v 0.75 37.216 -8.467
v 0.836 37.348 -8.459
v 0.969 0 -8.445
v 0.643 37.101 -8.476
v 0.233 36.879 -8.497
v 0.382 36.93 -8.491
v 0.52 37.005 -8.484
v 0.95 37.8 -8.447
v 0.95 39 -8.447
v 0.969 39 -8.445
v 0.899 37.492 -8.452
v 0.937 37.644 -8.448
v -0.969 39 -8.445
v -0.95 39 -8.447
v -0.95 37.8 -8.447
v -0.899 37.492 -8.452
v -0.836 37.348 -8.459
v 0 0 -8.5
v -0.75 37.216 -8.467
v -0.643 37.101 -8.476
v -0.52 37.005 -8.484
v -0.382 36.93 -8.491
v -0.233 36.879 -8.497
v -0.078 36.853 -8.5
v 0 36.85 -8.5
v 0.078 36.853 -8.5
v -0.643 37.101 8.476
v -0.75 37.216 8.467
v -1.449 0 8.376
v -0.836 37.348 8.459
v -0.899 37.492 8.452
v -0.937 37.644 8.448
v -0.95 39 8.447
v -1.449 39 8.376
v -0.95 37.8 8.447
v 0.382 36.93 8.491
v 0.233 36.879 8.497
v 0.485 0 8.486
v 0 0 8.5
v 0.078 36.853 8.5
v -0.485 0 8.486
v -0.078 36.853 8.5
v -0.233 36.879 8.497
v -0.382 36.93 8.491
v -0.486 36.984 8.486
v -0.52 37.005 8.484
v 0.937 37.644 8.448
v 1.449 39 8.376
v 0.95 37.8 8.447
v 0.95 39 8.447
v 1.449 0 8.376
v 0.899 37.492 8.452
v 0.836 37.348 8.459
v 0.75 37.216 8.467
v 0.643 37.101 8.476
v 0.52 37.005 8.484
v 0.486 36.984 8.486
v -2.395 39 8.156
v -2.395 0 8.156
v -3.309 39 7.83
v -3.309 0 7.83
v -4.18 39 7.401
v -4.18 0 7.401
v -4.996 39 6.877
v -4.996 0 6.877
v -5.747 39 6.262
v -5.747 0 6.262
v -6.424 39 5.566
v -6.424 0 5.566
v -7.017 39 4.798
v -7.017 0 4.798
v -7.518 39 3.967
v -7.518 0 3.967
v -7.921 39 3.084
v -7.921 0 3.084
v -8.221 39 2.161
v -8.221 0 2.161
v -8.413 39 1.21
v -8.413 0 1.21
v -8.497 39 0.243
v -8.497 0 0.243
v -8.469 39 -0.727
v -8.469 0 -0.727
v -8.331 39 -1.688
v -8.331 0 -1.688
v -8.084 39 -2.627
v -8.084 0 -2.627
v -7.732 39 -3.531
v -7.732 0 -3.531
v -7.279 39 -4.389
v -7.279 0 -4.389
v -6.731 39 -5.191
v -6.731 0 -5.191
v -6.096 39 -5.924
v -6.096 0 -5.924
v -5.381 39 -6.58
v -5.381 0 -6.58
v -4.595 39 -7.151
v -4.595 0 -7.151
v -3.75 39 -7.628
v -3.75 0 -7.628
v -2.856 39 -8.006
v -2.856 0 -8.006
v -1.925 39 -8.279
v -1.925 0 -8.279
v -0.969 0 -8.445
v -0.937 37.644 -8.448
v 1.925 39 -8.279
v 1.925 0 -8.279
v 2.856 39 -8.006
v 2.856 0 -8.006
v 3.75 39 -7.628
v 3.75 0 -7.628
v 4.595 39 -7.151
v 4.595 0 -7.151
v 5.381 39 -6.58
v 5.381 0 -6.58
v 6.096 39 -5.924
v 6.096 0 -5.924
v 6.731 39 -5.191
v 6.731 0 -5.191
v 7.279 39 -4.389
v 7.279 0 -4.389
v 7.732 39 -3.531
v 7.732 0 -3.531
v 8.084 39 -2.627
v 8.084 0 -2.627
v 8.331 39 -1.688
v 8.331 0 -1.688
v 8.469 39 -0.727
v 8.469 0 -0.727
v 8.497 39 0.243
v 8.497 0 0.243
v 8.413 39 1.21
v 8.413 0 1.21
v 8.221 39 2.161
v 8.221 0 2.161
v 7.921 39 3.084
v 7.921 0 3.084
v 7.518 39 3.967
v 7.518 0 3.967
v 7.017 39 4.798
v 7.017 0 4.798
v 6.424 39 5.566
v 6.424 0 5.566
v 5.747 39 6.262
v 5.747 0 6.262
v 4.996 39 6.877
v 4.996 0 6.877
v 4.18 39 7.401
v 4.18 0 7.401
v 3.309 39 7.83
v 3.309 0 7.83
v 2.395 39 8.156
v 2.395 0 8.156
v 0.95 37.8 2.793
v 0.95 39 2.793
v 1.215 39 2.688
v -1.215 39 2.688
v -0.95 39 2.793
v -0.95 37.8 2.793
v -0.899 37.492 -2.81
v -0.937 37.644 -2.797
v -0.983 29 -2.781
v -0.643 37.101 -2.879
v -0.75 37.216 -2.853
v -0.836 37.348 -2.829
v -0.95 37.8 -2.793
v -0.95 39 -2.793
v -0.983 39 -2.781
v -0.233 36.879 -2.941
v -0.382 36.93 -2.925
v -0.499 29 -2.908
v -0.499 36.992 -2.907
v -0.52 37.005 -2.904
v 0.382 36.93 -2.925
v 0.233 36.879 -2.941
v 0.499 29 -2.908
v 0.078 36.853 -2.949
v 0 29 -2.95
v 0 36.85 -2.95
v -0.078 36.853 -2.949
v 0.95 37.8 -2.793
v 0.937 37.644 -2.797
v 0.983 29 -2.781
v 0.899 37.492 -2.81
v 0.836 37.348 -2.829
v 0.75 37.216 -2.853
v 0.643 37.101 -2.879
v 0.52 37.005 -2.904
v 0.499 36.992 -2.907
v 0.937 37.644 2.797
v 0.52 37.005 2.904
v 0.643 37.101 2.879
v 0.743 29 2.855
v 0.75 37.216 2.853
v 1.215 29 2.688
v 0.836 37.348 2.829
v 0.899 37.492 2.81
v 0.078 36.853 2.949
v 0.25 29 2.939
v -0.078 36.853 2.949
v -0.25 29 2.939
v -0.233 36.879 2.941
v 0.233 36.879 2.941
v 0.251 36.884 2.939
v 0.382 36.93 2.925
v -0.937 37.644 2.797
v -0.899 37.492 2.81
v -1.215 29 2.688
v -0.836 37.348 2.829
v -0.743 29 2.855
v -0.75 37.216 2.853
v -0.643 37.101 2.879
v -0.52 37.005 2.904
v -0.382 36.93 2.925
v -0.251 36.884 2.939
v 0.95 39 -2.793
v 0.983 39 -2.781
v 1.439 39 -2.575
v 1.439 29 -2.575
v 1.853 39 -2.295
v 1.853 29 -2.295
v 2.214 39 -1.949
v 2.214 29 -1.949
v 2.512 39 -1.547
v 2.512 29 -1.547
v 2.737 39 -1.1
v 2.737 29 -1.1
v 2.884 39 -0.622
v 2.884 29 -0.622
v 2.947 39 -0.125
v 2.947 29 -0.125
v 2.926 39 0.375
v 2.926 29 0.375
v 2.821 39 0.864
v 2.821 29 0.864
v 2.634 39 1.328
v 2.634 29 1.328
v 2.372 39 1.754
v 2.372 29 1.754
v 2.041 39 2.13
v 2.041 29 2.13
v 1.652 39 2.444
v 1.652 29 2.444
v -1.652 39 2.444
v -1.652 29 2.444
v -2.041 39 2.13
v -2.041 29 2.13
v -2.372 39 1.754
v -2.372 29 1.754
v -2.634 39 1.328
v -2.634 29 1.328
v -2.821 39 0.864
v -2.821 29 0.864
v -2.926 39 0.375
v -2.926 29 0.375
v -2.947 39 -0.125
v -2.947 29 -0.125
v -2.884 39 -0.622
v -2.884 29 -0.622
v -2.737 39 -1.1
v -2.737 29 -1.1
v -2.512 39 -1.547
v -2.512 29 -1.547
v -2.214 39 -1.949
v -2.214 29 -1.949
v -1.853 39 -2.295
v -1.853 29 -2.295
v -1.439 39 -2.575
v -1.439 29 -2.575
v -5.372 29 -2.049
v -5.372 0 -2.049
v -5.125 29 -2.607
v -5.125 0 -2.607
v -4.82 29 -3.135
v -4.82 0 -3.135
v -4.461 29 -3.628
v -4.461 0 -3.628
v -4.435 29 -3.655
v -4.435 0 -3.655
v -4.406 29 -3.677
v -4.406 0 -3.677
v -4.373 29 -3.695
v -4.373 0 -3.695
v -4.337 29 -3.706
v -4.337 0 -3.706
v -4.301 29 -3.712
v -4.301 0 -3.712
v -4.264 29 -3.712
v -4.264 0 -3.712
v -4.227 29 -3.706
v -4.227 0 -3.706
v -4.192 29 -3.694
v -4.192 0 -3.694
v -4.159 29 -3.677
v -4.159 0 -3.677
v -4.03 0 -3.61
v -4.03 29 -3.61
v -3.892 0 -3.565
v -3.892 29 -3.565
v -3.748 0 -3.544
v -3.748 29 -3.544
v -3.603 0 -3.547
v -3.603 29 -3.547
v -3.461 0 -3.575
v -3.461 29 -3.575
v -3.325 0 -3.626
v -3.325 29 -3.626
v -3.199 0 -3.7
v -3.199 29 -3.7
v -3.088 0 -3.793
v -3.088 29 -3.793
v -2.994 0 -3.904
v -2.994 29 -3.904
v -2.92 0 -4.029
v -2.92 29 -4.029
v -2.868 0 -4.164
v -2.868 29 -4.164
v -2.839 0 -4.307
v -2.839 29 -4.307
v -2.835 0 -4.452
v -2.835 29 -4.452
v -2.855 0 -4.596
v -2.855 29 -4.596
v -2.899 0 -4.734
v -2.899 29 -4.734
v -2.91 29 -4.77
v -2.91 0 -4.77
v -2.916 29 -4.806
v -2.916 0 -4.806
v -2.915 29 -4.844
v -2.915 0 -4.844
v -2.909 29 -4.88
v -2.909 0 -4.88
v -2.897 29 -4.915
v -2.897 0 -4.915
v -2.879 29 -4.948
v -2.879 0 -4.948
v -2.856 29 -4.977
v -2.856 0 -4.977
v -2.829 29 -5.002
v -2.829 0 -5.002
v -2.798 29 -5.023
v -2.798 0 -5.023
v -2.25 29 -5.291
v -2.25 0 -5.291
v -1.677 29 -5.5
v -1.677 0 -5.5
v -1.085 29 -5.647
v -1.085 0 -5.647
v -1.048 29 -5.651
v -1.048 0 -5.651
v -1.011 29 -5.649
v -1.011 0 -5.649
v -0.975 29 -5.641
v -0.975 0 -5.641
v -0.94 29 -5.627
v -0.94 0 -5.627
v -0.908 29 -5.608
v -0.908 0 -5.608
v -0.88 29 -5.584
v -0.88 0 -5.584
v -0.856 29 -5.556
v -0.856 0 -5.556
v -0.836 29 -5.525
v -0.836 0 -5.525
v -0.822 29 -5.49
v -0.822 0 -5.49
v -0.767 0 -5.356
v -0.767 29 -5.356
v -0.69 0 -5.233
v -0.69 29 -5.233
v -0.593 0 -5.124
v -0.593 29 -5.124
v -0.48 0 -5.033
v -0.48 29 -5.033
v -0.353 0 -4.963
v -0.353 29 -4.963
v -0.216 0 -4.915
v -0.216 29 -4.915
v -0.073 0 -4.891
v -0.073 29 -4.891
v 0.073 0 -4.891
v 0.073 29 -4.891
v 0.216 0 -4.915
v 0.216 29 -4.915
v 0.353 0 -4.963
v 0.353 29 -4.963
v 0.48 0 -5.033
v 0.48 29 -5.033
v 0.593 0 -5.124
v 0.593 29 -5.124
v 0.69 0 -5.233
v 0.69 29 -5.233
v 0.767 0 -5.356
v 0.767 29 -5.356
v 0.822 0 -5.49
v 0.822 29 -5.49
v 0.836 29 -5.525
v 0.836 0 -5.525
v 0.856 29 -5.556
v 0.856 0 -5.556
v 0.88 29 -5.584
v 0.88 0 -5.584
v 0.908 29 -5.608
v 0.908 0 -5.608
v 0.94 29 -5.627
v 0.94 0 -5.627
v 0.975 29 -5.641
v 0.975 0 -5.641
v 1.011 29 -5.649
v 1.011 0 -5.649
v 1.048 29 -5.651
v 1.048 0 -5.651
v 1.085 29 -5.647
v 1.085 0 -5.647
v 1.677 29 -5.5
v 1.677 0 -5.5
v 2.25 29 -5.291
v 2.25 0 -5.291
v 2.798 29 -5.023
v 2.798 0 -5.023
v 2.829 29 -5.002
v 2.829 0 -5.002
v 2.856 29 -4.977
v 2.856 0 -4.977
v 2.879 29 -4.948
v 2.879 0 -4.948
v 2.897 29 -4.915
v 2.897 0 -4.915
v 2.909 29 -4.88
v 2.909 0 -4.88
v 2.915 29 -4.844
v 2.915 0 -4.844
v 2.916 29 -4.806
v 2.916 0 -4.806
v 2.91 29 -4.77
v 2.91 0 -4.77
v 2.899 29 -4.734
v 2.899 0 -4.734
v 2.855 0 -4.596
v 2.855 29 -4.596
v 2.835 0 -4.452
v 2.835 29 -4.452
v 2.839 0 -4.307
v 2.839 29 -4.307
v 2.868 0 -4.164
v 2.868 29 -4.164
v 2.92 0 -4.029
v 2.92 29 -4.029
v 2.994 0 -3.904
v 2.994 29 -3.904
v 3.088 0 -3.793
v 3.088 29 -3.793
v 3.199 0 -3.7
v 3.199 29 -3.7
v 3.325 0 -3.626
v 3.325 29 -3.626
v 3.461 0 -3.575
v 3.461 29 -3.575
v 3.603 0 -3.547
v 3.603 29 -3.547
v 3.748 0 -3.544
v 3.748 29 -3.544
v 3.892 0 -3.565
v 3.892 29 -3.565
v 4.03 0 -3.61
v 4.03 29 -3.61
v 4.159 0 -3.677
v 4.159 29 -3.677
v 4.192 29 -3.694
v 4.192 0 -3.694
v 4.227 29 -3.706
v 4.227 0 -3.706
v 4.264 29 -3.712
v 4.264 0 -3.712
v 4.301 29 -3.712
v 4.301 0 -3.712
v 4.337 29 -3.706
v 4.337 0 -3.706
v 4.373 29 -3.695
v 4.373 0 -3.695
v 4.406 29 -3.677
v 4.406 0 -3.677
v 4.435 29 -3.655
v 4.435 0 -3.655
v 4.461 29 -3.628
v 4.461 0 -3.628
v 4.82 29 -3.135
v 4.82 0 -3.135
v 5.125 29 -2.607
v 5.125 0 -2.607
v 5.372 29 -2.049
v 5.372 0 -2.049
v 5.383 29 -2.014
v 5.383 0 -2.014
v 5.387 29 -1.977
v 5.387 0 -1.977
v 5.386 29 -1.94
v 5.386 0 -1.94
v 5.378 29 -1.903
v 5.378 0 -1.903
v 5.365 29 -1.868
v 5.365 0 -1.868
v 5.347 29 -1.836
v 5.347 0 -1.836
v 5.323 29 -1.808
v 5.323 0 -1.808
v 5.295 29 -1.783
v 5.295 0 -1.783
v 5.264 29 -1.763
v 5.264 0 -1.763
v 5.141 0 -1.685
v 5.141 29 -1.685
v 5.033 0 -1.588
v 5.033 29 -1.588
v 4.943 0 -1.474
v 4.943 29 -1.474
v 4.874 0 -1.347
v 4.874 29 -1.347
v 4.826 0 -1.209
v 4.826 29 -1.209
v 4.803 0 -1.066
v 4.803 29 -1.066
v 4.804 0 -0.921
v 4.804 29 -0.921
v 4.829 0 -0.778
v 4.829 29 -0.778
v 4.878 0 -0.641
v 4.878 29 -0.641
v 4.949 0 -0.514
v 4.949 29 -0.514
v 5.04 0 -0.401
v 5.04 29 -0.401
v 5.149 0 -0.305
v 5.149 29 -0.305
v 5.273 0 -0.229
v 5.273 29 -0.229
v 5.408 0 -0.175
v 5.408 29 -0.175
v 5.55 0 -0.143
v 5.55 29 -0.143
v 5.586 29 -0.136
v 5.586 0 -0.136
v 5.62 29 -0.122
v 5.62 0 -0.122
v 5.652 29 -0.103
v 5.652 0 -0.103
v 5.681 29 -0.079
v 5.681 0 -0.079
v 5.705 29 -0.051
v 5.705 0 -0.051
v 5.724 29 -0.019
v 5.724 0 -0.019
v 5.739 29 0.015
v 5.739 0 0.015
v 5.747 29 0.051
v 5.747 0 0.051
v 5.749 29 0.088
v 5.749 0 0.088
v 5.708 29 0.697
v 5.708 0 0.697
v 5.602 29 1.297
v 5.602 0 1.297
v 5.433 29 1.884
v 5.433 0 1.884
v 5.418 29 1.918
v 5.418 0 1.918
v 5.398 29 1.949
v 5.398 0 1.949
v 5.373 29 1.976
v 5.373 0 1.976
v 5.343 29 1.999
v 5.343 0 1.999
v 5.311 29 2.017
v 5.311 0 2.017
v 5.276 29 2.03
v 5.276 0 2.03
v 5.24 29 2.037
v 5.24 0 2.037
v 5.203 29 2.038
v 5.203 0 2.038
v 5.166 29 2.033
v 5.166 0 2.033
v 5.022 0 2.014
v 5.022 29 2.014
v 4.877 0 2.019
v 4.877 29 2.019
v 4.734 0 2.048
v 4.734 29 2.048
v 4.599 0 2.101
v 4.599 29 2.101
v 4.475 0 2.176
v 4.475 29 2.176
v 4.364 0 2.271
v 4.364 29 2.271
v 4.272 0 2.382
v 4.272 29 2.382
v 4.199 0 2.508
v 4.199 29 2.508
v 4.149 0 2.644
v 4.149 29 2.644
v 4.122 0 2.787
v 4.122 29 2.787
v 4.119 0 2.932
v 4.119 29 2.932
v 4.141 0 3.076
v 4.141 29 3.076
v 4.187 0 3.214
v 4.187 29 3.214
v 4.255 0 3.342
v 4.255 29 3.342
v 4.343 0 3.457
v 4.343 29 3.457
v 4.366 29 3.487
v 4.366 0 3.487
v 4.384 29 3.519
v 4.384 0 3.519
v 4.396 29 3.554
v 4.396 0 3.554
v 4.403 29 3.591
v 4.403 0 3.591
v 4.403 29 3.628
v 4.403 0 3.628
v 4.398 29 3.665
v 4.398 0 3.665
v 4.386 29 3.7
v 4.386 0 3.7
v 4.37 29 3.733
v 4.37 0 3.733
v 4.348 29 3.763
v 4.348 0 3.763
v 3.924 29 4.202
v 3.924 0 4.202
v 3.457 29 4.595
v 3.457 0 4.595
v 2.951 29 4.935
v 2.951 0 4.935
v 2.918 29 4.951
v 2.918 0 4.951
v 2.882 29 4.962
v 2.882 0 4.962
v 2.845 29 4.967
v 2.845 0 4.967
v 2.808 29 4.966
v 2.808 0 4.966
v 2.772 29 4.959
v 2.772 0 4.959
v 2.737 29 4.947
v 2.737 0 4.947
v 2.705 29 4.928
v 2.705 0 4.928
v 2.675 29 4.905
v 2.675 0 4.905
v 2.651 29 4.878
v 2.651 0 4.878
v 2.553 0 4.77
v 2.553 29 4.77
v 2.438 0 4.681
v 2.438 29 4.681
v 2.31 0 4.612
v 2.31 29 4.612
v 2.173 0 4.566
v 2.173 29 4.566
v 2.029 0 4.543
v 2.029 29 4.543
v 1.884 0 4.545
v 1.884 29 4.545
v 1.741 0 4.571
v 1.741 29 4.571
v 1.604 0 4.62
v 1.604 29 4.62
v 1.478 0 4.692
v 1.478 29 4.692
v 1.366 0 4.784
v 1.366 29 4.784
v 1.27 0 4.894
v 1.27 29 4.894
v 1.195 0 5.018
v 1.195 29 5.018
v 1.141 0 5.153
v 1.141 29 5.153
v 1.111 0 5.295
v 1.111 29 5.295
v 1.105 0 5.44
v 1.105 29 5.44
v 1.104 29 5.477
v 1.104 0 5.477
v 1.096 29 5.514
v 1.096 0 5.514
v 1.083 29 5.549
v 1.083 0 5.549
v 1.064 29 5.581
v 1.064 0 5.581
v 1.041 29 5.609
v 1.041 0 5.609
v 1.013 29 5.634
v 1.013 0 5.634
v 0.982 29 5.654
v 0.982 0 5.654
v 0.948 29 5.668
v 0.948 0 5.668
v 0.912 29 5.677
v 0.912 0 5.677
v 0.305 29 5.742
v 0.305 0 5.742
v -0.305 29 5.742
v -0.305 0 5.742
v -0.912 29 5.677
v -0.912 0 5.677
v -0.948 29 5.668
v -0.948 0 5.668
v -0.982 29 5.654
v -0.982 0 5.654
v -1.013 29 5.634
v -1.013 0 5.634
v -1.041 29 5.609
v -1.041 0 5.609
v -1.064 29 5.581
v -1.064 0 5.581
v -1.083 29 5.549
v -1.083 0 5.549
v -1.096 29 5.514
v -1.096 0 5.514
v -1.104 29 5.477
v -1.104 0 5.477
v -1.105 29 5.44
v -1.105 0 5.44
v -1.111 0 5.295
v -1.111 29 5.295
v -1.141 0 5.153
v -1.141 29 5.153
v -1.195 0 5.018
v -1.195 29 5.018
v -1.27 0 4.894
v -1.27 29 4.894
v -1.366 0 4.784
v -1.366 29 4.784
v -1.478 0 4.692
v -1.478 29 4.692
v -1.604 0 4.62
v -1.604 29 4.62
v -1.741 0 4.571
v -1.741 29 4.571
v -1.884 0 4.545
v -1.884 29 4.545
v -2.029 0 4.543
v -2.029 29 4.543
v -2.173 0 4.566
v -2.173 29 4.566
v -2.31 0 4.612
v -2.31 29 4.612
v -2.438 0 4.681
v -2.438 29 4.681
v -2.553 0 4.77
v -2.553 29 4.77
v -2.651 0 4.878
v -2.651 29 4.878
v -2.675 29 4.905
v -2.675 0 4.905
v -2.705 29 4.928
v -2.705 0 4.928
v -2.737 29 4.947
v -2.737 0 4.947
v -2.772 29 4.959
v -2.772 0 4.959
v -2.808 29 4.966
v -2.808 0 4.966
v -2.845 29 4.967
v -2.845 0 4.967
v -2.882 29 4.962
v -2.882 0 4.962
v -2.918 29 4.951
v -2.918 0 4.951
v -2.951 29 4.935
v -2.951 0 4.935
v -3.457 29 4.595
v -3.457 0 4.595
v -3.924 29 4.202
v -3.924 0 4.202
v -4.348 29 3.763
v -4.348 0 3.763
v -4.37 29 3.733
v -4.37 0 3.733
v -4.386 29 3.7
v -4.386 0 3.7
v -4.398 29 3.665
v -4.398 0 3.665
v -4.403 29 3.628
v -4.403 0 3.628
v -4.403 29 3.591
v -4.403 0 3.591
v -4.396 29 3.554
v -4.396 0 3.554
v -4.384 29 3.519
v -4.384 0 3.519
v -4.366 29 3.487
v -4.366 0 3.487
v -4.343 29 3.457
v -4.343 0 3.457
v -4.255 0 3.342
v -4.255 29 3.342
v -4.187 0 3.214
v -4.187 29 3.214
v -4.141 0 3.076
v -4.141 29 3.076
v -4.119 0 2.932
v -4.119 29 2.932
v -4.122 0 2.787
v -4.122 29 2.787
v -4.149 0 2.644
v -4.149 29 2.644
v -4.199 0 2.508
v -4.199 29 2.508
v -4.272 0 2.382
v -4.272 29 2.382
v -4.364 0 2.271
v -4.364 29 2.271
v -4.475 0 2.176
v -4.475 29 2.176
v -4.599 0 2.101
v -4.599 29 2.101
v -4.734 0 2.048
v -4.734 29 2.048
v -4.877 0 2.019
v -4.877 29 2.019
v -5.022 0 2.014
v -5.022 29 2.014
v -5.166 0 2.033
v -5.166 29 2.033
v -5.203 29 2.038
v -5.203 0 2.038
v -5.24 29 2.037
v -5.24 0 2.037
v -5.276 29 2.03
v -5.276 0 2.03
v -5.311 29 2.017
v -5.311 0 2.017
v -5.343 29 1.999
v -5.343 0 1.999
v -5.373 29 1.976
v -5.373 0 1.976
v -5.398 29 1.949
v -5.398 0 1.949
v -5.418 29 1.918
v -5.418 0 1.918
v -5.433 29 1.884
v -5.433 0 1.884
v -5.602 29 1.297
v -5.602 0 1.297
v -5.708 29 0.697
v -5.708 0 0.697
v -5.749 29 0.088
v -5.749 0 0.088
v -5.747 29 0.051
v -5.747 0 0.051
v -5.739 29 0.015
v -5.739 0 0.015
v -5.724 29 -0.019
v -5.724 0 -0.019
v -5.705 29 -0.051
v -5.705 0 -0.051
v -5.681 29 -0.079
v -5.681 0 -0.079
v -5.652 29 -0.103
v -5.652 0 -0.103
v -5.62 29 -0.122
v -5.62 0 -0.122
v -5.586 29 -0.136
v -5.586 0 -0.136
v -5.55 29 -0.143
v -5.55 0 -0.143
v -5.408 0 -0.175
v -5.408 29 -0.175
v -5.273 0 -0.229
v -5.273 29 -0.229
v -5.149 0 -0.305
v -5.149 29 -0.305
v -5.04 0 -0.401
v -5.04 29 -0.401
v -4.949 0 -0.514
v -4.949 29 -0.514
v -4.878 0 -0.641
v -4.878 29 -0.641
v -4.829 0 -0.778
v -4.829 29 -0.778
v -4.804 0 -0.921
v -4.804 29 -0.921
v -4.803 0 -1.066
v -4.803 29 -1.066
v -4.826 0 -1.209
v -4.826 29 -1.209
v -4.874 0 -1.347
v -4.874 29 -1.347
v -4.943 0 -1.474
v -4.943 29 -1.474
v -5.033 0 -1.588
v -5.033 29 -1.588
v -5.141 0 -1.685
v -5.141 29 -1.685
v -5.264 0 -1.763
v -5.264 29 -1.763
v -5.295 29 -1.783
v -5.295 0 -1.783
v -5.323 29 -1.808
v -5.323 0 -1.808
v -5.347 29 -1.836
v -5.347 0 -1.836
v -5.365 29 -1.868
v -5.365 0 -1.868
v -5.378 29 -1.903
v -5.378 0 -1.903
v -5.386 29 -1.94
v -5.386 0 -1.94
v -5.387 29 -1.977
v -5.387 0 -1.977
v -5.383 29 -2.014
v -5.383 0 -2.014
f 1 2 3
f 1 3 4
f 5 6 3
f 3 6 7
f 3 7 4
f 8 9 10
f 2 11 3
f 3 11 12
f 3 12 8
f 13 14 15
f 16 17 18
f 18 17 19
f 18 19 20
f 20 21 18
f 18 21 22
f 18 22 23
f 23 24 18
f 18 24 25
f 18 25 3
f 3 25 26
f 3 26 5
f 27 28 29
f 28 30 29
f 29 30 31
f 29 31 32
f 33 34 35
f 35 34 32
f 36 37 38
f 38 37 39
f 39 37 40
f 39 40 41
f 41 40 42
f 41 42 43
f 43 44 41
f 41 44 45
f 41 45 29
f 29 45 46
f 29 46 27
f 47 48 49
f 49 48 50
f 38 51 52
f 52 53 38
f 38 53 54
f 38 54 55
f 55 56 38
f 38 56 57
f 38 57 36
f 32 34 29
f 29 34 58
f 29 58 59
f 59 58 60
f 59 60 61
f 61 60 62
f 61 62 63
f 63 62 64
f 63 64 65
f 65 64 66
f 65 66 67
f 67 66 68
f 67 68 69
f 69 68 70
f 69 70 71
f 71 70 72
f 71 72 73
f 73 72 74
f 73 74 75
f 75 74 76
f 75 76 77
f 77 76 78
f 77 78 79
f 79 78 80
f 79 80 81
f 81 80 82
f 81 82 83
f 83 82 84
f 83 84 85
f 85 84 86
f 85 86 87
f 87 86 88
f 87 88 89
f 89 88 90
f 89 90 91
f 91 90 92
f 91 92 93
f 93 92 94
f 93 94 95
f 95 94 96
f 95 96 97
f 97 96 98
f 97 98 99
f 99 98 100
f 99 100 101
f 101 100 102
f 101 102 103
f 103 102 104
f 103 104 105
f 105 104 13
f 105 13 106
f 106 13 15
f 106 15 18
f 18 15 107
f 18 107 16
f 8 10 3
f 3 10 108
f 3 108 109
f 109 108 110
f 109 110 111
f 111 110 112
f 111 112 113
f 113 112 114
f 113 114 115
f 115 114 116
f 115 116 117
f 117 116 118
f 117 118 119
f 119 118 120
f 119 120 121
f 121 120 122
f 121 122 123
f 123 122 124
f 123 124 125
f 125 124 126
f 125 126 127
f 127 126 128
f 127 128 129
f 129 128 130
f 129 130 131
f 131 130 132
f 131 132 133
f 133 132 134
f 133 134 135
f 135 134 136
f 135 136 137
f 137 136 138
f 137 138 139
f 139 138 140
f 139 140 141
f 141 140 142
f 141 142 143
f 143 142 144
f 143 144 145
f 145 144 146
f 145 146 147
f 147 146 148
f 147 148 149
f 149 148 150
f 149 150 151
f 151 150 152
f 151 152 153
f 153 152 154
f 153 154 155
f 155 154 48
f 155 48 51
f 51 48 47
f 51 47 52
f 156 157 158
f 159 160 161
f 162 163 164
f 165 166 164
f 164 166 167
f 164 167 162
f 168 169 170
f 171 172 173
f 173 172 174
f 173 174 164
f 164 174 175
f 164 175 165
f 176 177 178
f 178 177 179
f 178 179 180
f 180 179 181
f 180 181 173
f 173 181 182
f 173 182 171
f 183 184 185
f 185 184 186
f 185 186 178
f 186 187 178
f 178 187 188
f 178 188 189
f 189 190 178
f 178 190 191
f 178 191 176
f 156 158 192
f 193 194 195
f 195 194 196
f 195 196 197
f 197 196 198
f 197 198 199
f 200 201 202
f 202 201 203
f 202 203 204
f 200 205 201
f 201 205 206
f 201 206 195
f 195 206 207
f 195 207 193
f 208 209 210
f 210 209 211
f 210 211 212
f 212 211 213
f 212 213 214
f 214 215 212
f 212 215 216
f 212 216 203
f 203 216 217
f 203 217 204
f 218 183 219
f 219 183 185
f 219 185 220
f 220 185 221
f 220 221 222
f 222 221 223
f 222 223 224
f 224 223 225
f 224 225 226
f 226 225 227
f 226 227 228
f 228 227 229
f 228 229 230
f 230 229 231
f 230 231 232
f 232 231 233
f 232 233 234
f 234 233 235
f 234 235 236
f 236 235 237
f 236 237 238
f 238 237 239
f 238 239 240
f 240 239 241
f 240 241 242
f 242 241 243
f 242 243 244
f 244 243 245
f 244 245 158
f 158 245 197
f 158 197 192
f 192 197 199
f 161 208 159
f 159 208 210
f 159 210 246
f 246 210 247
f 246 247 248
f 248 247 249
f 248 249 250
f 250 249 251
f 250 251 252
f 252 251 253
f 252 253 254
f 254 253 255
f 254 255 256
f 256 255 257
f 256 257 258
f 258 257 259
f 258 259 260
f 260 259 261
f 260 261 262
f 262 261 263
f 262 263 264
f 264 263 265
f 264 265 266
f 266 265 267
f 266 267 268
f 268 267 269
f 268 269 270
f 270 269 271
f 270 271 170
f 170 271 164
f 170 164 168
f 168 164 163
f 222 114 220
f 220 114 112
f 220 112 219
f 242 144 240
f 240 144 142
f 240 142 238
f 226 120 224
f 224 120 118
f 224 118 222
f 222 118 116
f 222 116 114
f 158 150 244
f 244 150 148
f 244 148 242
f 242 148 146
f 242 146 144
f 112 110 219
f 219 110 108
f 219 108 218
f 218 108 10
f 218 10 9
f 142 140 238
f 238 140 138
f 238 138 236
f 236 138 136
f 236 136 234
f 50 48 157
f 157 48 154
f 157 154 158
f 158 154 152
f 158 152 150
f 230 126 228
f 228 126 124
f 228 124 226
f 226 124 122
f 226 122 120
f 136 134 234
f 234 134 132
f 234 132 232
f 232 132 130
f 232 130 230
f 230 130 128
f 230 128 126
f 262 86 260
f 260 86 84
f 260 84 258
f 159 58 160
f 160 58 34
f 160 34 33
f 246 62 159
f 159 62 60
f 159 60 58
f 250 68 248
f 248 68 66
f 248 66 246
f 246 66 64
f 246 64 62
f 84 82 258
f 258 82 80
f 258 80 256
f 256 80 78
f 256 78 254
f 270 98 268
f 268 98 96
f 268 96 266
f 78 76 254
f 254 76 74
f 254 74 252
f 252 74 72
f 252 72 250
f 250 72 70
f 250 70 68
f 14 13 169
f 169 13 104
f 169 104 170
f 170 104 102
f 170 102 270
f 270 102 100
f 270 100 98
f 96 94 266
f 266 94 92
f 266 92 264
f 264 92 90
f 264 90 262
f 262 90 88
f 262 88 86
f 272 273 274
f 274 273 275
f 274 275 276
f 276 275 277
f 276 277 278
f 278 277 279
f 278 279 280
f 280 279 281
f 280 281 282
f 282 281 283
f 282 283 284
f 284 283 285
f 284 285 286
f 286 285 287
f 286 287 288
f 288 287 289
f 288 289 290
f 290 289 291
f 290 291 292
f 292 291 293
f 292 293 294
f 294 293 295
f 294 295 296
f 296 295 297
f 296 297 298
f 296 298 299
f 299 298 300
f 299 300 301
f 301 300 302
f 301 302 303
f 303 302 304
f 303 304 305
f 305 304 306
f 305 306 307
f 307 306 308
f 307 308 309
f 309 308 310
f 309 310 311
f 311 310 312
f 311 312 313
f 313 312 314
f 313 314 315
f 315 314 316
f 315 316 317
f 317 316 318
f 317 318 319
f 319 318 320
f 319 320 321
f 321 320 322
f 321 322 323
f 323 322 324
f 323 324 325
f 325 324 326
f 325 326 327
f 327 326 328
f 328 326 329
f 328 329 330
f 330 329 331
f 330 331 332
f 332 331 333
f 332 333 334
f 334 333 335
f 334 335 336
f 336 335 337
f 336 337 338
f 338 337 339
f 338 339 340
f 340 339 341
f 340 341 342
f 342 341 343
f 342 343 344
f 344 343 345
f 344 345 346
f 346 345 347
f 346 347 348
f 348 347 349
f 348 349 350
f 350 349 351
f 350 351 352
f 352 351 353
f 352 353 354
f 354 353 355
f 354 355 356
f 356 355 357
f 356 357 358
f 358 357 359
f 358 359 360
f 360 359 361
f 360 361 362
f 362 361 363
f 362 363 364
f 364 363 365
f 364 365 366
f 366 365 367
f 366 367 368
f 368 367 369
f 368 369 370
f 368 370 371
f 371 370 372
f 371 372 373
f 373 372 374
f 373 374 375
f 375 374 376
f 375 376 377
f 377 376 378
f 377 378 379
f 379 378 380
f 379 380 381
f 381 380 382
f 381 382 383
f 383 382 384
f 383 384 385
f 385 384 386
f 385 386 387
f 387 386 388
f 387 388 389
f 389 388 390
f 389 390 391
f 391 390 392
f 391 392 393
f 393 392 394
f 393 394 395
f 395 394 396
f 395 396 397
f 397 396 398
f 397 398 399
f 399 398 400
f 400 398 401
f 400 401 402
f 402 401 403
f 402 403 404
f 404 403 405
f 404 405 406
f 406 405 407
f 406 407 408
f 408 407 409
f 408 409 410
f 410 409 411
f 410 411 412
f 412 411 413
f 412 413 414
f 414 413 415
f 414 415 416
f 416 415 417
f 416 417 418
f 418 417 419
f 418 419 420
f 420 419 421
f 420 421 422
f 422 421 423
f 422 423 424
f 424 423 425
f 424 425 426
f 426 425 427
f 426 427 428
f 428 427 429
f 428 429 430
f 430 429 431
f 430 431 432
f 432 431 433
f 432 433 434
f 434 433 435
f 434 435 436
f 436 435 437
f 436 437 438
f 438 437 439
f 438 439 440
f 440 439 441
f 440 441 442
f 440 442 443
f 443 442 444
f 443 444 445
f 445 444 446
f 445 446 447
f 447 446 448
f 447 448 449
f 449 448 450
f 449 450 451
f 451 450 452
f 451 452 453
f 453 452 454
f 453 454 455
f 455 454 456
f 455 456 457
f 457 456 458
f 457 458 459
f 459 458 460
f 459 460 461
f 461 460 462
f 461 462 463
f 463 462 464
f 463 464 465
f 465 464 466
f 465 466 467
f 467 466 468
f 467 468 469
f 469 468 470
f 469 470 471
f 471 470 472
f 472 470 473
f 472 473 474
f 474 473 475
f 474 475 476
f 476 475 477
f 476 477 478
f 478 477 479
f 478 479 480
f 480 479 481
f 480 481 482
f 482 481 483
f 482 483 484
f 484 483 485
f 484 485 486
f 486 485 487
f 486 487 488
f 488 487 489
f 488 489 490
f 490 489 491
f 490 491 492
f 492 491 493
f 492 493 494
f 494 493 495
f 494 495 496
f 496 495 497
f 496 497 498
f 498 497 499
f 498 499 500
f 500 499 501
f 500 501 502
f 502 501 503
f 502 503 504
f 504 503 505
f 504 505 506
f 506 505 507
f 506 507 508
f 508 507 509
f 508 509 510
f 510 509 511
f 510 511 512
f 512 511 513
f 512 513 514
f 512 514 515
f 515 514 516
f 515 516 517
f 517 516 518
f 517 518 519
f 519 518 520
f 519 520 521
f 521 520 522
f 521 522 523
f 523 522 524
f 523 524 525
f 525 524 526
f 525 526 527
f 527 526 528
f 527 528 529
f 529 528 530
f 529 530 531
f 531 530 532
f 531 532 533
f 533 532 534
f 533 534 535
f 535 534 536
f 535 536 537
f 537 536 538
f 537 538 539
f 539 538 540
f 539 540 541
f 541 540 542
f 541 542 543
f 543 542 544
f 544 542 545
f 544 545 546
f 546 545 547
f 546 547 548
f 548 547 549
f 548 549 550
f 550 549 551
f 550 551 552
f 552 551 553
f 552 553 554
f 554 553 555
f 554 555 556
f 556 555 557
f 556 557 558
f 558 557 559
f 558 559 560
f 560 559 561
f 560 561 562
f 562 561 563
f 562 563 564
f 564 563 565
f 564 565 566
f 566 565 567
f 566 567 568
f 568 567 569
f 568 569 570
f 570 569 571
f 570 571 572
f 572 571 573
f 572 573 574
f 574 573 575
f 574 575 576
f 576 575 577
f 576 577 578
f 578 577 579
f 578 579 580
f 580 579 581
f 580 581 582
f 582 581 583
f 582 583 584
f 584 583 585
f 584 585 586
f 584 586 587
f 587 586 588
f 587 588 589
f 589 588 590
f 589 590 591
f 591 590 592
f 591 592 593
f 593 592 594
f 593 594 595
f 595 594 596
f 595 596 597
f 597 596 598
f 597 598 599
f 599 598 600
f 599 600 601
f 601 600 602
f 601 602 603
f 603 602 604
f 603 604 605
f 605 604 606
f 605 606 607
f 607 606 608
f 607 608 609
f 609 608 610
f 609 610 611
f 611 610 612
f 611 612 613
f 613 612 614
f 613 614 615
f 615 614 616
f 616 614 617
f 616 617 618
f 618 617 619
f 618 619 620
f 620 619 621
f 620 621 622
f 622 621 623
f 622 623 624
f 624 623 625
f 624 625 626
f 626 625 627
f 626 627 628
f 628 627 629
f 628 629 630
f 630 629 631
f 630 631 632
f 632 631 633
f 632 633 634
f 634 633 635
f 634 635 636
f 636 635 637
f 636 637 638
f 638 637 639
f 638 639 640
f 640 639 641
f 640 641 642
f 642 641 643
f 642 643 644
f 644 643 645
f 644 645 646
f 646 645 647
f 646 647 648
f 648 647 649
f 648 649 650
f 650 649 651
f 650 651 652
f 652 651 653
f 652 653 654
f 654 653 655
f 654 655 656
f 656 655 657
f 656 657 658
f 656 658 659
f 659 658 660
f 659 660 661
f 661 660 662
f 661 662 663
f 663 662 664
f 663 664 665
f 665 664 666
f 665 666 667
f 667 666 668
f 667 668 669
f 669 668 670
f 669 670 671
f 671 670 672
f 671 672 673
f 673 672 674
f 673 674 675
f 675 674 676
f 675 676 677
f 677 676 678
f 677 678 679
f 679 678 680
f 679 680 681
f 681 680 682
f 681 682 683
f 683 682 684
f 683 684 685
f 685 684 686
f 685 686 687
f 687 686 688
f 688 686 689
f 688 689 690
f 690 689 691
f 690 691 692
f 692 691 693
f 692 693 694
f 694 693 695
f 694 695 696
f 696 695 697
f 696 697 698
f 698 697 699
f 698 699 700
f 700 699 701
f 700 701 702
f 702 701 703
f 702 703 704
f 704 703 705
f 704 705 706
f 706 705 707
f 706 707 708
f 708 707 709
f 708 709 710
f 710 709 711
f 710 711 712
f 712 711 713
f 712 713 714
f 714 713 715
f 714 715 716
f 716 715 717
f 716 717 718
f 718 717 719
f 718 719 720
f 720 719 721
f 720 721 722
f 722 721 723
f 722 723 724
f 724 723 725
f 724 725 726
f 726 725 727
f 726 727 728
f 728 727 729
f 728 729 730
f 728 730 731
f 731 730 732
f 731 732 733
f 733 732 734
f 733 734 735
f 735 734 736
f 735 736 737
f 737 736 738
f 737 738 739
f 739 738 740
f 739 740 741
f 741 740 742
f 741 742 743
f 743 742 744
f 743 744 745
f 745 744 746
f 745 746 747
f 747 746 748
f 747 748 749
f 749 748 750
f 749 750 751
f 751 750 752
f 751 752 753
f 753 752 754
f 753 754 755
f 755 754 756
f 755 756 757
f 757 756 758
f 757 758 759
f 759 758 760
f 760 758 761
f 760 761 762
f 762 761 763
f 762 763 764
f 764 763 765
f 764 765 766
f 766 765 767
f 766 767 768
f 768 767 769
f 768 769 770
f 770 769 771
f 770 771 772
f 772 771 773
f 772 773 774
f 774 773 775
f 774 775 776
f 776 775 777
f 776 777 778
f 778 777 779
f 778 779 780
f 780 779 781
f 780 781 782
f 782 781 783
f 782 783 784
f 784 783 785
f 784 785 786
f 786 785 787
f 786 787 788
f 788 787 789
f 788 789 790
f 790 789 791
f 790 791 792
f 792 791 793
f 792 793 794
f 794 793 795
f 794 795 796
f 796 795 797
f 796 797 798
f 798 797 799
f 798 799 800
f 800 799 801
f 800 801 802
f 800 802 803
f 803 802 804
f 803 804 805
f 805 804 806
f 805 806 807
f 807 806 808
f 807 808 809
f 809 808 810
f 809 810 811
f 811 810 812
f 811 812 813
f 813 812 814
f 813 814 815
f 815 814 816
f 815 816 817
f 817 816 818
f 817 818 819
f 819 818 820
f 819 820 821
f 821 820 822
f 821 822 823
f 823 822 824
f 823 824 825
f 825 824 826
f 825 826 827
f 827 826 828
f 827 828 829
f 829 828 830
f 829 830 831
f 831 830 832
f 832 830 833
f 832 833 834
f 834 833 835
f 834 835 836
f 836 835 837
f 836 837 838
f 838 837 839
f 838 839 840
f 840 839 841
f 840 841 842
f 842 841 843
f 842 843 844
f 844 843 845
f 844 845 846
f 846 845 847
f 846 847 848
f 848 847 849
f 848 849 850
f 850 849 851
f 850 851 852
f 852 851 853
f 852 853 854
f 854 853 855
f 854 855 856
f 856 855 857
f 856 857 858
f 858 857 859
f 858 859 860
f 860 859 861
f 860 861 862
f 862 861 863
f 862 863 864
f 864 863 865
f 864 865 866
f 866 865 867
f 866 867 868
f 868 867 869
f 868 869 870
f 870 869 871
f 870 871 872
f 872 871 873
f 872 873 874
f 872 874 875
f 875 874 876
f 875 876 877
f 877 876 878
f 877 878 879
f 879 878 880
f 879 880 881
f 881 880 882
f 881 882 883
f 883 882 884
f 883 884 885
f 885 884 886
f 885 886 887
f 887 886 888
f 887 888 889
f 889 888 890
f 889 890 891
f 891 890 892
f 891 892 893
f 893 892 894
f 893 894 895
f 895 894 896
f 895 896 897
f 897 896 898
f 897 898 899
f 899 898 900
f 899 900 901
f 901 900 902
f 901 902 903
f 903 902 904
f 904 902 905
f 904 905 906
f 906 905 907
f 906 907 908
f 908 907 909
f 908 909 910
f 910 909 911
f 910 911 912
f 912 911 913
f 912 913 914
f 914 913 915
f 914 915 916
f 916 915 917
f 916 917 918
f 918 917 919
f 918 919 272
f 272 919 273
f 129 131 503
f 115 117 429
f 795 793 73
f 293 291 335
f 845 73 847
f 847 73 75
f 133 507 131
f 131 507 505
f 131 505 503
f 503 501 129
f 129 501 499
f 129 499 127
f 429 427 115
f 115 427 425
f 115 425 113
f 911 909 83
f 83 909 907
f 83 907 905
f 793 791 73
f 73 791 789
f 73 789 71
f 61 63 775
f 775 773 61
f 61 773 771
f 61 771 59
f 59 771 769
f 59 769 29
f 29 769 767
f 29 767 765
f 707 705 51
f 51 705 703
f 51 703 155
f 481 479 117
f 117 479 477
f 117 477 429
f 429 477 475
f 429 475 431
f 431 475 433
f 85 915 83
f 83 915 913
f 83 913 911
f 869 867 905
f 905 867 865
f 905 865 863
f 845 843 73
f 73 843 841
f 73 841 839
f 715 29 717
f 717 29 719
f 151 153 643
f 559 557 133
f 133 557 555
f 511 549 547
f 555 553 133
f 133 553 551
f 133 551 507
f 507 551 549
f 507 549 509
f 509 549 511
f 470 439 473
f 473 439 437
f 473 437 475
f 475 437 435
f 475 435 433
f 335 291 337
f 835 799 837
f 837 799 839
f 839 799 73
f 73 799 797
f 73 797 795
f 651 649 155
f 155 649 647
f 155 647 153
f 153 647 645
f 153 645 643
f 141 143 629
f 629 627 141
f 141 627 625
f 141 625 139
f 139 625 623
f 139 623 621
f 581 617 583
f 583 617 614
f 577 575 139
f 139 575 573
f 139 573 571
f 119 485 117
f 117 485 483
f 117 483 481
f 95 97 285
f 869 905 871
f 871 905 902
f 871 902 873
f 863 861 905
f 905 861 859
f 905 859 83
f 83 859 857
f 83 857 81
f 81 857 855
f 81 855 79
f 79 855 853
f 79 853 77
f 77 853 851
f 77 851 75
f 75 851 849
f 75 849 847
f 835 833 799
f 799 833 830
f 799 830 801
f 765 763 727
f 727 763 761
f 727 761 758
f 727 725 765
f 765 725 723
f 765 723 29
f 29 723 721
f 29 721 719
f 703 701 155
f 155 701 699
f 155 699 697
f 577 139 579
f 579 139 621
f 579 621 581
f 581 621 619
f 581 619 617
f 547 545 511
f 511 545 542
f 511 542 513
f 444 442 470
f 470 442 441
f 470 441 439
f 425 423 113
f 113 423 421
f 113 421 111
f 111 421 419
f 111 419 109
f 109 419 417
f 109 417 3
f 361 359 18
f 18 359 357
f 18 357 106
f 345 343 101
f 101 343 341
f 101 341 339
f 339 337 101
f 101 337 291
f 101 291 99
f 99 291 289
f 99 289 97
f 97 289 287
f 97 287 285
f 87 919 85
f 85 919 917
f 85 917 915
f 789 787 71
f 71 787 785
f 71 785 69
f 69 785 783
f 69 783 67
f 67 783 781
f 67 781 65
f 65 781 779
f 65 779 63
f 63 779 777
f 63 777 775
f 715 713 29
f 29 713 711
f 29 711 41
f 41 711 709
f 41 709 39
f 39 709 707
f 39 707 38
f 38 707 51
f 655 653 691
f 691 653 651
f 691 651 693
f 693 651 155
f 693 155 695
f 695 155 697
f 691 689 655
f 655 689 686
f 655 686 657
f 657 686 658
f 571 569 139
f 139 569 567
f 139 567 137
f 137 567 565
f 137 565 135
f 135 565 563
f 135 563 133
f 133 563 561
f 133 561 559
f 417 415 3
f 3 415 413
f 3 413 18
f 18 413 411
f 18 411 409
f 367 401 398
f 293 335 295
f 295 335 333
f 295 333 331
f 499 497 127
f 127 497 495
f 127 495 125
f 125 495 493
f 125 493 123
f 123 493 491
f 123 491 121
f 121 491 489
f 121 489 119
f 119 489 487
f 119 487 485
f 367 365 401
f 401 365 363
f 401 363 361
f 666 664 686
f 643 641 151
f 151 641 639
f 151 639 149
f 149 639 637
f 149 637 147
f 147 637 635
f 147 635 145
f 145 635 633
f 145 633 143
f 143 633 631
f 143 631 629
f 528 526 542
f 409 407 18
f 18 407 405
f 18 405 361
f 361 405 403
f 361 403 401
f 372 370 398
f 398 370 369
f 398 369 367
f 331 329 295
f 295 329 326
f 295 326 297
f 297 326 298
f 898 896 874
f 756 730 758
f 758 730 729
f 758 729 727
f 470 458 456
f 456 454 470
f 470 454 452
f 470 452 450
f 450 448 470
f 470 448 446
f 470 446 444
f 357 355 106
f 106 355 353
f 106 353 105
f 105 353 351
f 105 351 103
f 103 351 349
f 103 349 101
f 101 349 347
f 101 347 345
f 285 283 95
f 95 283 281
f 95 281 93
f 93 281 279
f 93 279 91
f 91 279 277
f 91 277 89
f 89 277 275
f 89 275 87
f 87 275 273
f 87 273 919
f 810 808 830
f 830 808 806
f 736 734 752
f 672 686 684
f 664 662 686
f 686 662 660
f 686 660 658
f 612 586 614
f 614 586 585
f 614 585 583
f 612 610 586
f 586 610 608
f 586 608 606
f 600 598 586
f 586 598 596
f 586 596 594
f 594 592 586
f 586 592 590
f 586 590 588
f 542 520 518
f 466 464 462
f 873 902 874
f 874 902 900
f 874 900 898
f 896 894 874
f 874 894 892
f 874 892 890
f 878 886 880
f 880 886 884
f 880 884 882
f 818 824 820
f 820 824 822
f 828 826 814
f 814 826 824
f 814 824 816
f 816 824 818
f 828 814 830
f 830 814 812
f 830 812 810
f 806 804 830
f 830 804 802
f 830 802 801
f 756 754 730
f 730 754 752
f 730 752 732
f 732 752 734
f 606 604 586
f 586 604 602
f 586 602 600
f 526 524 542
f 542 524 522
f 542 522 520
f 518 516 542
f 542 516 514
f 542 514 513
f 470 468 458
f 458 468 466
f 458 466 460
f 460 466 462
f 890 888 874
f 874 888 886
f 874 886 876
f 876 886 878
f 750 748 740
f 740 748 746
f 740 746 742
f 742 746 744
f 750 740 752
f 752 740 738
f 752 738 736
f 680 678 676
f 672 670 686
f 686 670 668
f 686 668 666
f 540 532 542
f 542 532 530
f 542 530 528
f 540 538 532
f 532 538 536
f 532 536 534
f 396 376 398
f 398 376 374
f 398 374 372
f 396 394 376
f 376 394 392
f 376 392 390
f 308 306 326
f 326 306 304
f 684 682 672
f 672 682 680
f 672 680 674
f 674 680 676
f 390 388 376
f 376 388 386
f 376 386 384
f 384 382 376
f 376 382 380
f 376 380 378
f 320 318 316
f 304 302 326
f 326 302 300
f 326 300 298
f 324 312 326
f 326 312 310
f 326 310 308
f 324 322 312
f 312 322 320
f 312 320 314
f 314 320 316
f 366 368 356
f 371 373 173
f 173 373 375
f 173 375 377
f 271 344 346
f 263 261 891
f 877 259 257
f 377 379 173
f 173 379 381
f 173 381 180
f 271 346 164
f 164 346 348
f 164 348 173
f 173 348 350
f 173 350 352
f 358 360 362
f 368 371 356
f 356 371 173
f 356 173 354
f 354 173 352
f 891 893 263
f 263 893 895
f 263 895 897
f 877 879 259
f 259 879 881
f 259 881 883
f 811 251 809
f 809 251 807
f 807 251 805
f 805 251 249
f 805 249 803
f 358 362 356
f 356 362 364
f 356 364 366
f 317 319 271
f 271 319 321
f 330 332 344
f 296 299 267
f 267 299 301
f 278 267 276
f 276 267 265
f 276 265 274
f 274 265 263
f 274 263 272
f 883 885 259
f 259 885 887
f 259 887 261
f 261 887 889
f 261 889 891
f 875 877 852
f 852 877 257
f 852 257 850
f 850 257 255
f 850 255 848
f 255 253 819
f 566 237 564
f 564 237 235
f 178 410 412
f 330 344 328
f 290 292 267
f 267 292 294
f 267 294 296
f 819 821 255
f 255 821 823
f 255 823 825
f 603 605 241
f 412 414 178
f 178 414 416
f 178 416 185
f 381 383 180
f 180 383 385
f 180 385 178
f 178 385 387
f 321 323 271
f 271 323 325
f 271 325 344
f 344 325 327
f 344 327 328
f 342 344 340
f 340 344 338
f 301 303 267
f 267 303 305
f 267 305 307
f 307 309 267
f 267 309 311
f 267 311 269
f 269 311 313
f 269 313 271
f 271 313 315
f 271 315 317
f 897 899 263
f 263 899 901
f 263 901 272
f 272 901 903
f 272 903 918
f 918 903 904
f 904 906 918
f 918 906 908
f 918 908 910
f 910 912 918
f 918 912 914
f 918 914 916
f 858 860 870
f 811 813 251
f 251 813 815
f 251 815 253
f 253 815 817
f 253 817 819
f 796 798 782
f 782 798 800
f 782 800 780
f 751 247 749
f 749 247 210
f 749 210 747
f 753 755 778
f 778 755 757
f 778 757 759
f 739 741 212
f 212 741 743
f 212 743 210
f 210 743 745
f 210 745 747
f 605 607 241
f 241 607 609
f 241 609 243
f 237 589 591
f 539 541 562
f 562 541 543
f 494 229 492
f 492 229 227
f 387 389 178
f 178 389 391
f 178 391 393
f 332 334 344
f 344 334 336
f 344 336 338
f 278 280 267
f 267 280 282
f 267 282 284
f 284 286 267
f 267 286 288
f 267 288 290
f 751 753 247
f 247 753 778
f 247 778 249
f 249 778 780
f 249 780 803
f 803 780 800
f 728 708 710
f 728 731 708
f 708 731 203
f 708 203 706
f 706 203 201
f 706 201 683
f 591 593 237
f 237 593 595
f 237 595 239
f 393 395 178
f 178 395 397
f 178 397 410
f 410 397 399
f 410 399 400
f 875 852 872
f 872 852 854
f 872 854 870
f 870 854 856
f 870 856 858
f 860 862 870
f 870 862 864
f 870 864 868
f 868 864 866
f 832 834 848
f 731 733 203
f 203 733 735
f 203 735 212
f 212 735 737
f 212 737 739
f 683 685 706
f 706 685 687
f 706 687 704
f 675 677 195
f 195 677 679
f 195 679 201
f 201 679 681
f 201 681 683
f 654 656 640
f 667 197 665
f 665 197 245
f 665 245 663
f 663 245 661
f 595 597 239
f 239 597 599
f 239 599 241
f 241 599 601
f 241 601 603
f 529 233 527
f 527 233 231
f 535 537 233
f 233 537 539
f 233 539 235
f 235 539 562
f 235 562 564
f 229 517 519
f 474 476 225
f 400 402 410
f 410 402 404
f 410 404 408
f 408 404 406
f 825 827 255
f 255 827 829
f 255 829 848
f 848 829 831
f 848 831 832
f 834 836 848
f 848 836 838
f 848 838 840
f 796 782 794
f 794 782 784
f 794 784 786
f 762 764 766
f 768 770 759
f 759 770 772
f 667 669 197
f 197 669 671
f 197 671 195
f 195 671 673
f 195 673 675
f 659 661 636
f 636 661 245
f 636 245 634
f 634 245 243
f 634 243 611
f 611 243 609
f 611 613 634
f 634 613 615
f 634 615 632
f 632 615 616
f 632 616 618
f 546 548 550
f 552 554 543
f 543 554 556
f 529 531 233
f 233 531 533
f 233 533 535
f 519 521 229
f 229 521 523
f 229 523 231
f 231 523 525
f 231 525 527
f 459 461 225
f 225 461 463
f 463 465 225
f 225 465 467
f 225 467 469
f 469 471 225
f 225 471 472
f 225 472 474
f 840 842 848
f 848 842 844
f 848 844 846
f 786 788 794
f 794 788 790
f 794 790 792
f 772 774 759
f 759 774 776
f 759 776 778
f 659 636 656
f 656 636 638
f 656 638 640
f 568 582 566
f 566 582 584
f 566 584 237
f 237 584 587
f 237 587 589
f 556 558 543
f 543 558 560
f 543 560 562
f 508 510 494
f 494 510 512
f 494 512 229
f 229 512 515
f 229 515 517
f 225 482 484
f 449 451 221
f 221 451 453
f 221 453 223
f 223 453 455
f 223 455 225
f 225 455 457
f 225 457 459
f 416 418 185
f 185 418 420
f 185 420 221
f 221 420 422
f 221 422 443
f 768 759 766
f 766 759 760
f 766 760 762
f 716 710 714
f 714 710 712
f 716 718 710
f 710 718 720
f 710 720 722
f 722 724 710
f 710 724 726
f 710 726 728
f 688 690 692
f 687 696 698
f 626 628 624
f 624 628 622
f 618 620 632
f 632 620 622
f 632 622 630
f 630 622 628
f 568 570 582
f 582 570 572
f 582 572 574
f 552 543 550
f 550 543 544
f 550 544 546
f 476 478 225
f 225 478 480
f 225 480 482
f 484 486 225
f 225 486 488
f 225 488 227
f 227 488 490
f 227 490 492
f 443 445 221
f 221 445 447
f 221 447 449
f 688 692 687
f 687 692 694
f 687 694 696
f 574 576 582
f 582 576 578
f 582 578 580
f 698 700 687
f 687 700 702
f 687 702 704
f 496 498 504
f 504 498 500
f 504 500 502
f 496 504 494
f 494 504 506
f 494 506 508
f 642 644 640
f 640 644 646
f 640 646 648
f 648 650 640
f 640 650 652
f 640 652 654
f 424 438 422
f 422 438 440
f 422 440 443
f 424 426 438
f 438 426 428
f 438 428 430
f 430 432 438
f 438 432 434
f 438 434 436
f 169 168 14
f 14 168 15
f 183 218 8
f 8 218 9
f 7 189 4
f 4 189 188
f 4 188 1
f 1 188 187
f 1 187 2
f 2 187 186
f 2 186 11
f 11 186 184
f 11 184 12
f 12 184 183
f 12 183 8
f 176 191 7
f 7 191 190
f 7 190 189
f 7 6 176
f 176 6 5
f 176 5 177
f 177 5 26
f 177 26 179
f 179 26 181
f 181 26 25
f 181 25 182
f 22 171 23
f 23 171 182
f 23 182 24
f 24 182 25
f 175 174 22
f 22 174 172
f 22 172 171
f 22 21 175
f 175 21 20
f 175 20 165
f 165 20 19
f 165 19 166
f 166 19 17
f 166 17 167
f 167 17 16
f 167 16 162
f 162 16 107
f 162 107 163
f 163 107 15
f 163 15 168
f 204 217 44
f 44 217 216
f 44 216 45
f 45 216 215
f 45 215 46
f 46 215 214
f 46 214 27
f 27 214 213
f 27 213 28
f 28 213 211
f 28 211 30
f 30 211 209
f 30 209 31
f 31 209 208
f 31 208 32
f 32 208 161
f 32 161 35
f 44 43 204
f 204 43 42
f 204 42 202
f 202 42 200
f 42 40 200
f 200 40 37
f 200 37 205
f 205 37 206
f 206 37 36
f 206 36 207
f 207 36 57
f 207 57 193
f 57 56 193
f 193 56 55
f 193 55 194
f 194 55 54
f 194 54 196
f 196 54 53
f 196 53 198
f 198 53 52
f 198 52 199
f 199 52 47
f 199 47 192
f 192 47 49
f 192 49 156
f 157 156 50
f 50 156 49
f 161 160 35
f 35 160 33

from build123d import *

# Parameters (mm, degrees)
SKETCH1_R               = 8.5
BOSS_EXTRUDE1_DEPTH     = 29
SKETCH2_W               = 5.55
SKETCH2_H               = 10
CUT_EXTRUDE1_DEPTH      = 10
CUT_EXTRUDE1_DEPTH_BACK = 10


with BuildPart() as part:
    # Sketch1 → Boss-Extrude1 (new body)
    with BuildSketch(Plane(origin=(0, 0, 0), x_dir=(1, 0, 0), z_dir=(0, 1, 0))):
        Circle(SKETCH1_R)
        with BuildLine():
            ThreePointArc((5.263897115, 1.76326896), (4.813247893, 0.848705468), (5.549518778, 0.143428015))
            ThreePointArc((5.549518778, 0.143428015), (5.693479971, 0.065679427), (5.749324893, -0.08810943))
            ThreePointArc((5.749324893, -0.08810943), (5.66264458, -0.998477022), (5.432733377, -1.883589143))
            ThreePointArc((5.432733377, -1.883589143), (5.327657428, -2.009003309), (5.165786574, -2.032825456))
            ThreePointArc((5.165786574, -2.032825456), (4.232699161, -2.44375), (4.343371773, -3.457289676))
            ThreePointArc((4.343371773, -3.457289676), (4.403676616, -3.609385021), (4.347602736, -3.763090545))
            ThreePointArc((4.347602736, -3.763090545), (3.696028756, -4.404755548), (2.950967451, -4.935006697))
            ThreePointArc((2.950967451, -4.935006697), (2.789859933, -4.963538005), (2.650547084, -4.877738248))
            ThreePointArc((2.650547084, -4.877738248), (1.671623451, -4.592747684), (1.104912844, -5.440303105))
            ThreePointArc((1.104912844, -5.440303105), (1.053344031, -5.595578104), (0.911588941, -5.677279771))
            ThreePointArc((0.911588941, -5.677279771), (0, -5.75), (-0.911588941, -5.677279771))
            ThreePointArc((-0.911588941, -5.677279771), (-1.053344031, -5.595578104), (-1.104912844, -5.440303105))
            ThreePointArc((-1.104912844, -5.440303105), (-1.671623451, -4.592747684), (-2.650547084, -4.877738248))
            ThreePointArc((-2.650547084, -4.877738248), (-2.789859933, -4.963538005), (-2.950967451, -4.935006697))
            ThreePointArc((-2.950967451, -4.935006697), (-3.696028756, -4.404755548), (-4.347602736, -3.763090545))
            ThreePointArc((-4.347602736, -3.763090545), (-4.403676616, -3.609385021), (-4.343371773, -3.457289676))
            ThreePointArc((-4.343371773, -3.457289676), (-4.232699161, -2.44375), (-5.165786574, -2.032825456))
            ThreePointArc((-5.165786574, -2.032825456), (-5.327657428, -2.009003309), (-5.432733377, -1.883589143))
            ThreePointArc((-5.432733377, -1.883589143), (-5.66264458, -0.998477022), (-5.749324893, -0.08810943))
            ThreePointArc((-5.749324893, -0.08810943), (-5.693479971, 0.065679427), (-5.549518778, 0.143428015))
            ThreePointArc((-5.549518778, 0.143428015), (-4.813247893, 0.848705468), (-5.263897115, 1.76326896))
            ThreePointArc((-5.263897115, 1.76326896), (-5.372584803, 1.885566362), (-5.372462977, 2.049180705))
            ThreePointArc((-5.372462977, 2.049180705), (-4.979646072, 2.875), (-4.460874036, 3.628099066))
            ThreePointArc((-4.460874036, 3.628099066), (-4.319240772, 3.710011742), (-4.158984271, 3.677034144))
            ThreePointArc((-4.158984271, 3.677034144), (-3.141624442, 3.744042216), (-2.898971694, 4.734310233))
            ThreePointArc((-2.898971694, 4.734310233), (-2.903620038, 4.897858577), (-2.798357442, 5.023116127))
            ThreePointArc((-2.798357442, 5.023116127), (-1.966615824, 5.40323257), (-1.08513064, 5.646679688))
            ThreePointArc((-1.08513064, 5.646679688), (-0.923980812, 5.61838833), (-0.822414801, 5.490115132))
            ThreePointArc((-0.822414801, 5.490115132), (0, 4.8875), (0.822414801, 5.490115132))
            ThreePointArc((0.822414801, 5.490115132), (0.923980812, 5.61838833), (1.08513064, 5.646679688))
            ThreePointArc((1.08513064, 5.646679688), (1.966615824, 5.40323257), (2.798357442, 5.023116127))
            ThreePointArc((2.798357442, 5.023116127), (2.903620038, 4.897858577), (2.898971694, 4.734310233))
            ThreePointArc((2.898971694, 4.734310233), (3.141624442, 3.744042216), (4.158984271, 3.677034144))
            ThreePointArc((4.158984271, 3.677034144), (4.319240772, 3.710011742), (4.460874036, 3.628099066))
            ThreePointArc((4.460874036, 3.628099066), (4.979646072, 2.875), (5.372462977, 2.049180705))
            ThreePointArc((5.372462977, 2.049180705), (5.372584803, 1.885566362), (5.263897115, 1.76326896))
        make_face(mode=Mode.SUBTRACT)
    extrude(amount=BOSS_EXTRUDE1_DEPTH)

    # Sketch2 → Revolve2 (revolve)
    with BuildSketch(Plane.XY):
        with Locations((-5.725, 34)):
            Rectangle(SKETCH2_W, SKETCH2_H)
    revolve(axis=Axis((0, 0, 0), (0, 1, 0)))

    # Sketch4 → Cut-Extrude1 (cut, two sides: drawn at the far end of the back side and taken through both)
    with BuildSketch(Plane.XY.offset(-CUT_EXTRUDE1_DEPTH_BACK)):
        with BuildLine():
            Line((-0.95, 37.8), (-0.95, 39))
            Line((-0.95, 39), (0.95, 39))
            Line((0.95, 39), (0.95, 37.8))
            ThreePointArc((0.95, 37.8), (0, 36.85), (-0.95, 37.8))
        make_face()
    extrude(amount=CUT_EXTRUDE1_DEPTH + CUT_EXTRUDE1_DEPTH_BACK, mode=Mode.SUBTRACT)


solid = part.part
